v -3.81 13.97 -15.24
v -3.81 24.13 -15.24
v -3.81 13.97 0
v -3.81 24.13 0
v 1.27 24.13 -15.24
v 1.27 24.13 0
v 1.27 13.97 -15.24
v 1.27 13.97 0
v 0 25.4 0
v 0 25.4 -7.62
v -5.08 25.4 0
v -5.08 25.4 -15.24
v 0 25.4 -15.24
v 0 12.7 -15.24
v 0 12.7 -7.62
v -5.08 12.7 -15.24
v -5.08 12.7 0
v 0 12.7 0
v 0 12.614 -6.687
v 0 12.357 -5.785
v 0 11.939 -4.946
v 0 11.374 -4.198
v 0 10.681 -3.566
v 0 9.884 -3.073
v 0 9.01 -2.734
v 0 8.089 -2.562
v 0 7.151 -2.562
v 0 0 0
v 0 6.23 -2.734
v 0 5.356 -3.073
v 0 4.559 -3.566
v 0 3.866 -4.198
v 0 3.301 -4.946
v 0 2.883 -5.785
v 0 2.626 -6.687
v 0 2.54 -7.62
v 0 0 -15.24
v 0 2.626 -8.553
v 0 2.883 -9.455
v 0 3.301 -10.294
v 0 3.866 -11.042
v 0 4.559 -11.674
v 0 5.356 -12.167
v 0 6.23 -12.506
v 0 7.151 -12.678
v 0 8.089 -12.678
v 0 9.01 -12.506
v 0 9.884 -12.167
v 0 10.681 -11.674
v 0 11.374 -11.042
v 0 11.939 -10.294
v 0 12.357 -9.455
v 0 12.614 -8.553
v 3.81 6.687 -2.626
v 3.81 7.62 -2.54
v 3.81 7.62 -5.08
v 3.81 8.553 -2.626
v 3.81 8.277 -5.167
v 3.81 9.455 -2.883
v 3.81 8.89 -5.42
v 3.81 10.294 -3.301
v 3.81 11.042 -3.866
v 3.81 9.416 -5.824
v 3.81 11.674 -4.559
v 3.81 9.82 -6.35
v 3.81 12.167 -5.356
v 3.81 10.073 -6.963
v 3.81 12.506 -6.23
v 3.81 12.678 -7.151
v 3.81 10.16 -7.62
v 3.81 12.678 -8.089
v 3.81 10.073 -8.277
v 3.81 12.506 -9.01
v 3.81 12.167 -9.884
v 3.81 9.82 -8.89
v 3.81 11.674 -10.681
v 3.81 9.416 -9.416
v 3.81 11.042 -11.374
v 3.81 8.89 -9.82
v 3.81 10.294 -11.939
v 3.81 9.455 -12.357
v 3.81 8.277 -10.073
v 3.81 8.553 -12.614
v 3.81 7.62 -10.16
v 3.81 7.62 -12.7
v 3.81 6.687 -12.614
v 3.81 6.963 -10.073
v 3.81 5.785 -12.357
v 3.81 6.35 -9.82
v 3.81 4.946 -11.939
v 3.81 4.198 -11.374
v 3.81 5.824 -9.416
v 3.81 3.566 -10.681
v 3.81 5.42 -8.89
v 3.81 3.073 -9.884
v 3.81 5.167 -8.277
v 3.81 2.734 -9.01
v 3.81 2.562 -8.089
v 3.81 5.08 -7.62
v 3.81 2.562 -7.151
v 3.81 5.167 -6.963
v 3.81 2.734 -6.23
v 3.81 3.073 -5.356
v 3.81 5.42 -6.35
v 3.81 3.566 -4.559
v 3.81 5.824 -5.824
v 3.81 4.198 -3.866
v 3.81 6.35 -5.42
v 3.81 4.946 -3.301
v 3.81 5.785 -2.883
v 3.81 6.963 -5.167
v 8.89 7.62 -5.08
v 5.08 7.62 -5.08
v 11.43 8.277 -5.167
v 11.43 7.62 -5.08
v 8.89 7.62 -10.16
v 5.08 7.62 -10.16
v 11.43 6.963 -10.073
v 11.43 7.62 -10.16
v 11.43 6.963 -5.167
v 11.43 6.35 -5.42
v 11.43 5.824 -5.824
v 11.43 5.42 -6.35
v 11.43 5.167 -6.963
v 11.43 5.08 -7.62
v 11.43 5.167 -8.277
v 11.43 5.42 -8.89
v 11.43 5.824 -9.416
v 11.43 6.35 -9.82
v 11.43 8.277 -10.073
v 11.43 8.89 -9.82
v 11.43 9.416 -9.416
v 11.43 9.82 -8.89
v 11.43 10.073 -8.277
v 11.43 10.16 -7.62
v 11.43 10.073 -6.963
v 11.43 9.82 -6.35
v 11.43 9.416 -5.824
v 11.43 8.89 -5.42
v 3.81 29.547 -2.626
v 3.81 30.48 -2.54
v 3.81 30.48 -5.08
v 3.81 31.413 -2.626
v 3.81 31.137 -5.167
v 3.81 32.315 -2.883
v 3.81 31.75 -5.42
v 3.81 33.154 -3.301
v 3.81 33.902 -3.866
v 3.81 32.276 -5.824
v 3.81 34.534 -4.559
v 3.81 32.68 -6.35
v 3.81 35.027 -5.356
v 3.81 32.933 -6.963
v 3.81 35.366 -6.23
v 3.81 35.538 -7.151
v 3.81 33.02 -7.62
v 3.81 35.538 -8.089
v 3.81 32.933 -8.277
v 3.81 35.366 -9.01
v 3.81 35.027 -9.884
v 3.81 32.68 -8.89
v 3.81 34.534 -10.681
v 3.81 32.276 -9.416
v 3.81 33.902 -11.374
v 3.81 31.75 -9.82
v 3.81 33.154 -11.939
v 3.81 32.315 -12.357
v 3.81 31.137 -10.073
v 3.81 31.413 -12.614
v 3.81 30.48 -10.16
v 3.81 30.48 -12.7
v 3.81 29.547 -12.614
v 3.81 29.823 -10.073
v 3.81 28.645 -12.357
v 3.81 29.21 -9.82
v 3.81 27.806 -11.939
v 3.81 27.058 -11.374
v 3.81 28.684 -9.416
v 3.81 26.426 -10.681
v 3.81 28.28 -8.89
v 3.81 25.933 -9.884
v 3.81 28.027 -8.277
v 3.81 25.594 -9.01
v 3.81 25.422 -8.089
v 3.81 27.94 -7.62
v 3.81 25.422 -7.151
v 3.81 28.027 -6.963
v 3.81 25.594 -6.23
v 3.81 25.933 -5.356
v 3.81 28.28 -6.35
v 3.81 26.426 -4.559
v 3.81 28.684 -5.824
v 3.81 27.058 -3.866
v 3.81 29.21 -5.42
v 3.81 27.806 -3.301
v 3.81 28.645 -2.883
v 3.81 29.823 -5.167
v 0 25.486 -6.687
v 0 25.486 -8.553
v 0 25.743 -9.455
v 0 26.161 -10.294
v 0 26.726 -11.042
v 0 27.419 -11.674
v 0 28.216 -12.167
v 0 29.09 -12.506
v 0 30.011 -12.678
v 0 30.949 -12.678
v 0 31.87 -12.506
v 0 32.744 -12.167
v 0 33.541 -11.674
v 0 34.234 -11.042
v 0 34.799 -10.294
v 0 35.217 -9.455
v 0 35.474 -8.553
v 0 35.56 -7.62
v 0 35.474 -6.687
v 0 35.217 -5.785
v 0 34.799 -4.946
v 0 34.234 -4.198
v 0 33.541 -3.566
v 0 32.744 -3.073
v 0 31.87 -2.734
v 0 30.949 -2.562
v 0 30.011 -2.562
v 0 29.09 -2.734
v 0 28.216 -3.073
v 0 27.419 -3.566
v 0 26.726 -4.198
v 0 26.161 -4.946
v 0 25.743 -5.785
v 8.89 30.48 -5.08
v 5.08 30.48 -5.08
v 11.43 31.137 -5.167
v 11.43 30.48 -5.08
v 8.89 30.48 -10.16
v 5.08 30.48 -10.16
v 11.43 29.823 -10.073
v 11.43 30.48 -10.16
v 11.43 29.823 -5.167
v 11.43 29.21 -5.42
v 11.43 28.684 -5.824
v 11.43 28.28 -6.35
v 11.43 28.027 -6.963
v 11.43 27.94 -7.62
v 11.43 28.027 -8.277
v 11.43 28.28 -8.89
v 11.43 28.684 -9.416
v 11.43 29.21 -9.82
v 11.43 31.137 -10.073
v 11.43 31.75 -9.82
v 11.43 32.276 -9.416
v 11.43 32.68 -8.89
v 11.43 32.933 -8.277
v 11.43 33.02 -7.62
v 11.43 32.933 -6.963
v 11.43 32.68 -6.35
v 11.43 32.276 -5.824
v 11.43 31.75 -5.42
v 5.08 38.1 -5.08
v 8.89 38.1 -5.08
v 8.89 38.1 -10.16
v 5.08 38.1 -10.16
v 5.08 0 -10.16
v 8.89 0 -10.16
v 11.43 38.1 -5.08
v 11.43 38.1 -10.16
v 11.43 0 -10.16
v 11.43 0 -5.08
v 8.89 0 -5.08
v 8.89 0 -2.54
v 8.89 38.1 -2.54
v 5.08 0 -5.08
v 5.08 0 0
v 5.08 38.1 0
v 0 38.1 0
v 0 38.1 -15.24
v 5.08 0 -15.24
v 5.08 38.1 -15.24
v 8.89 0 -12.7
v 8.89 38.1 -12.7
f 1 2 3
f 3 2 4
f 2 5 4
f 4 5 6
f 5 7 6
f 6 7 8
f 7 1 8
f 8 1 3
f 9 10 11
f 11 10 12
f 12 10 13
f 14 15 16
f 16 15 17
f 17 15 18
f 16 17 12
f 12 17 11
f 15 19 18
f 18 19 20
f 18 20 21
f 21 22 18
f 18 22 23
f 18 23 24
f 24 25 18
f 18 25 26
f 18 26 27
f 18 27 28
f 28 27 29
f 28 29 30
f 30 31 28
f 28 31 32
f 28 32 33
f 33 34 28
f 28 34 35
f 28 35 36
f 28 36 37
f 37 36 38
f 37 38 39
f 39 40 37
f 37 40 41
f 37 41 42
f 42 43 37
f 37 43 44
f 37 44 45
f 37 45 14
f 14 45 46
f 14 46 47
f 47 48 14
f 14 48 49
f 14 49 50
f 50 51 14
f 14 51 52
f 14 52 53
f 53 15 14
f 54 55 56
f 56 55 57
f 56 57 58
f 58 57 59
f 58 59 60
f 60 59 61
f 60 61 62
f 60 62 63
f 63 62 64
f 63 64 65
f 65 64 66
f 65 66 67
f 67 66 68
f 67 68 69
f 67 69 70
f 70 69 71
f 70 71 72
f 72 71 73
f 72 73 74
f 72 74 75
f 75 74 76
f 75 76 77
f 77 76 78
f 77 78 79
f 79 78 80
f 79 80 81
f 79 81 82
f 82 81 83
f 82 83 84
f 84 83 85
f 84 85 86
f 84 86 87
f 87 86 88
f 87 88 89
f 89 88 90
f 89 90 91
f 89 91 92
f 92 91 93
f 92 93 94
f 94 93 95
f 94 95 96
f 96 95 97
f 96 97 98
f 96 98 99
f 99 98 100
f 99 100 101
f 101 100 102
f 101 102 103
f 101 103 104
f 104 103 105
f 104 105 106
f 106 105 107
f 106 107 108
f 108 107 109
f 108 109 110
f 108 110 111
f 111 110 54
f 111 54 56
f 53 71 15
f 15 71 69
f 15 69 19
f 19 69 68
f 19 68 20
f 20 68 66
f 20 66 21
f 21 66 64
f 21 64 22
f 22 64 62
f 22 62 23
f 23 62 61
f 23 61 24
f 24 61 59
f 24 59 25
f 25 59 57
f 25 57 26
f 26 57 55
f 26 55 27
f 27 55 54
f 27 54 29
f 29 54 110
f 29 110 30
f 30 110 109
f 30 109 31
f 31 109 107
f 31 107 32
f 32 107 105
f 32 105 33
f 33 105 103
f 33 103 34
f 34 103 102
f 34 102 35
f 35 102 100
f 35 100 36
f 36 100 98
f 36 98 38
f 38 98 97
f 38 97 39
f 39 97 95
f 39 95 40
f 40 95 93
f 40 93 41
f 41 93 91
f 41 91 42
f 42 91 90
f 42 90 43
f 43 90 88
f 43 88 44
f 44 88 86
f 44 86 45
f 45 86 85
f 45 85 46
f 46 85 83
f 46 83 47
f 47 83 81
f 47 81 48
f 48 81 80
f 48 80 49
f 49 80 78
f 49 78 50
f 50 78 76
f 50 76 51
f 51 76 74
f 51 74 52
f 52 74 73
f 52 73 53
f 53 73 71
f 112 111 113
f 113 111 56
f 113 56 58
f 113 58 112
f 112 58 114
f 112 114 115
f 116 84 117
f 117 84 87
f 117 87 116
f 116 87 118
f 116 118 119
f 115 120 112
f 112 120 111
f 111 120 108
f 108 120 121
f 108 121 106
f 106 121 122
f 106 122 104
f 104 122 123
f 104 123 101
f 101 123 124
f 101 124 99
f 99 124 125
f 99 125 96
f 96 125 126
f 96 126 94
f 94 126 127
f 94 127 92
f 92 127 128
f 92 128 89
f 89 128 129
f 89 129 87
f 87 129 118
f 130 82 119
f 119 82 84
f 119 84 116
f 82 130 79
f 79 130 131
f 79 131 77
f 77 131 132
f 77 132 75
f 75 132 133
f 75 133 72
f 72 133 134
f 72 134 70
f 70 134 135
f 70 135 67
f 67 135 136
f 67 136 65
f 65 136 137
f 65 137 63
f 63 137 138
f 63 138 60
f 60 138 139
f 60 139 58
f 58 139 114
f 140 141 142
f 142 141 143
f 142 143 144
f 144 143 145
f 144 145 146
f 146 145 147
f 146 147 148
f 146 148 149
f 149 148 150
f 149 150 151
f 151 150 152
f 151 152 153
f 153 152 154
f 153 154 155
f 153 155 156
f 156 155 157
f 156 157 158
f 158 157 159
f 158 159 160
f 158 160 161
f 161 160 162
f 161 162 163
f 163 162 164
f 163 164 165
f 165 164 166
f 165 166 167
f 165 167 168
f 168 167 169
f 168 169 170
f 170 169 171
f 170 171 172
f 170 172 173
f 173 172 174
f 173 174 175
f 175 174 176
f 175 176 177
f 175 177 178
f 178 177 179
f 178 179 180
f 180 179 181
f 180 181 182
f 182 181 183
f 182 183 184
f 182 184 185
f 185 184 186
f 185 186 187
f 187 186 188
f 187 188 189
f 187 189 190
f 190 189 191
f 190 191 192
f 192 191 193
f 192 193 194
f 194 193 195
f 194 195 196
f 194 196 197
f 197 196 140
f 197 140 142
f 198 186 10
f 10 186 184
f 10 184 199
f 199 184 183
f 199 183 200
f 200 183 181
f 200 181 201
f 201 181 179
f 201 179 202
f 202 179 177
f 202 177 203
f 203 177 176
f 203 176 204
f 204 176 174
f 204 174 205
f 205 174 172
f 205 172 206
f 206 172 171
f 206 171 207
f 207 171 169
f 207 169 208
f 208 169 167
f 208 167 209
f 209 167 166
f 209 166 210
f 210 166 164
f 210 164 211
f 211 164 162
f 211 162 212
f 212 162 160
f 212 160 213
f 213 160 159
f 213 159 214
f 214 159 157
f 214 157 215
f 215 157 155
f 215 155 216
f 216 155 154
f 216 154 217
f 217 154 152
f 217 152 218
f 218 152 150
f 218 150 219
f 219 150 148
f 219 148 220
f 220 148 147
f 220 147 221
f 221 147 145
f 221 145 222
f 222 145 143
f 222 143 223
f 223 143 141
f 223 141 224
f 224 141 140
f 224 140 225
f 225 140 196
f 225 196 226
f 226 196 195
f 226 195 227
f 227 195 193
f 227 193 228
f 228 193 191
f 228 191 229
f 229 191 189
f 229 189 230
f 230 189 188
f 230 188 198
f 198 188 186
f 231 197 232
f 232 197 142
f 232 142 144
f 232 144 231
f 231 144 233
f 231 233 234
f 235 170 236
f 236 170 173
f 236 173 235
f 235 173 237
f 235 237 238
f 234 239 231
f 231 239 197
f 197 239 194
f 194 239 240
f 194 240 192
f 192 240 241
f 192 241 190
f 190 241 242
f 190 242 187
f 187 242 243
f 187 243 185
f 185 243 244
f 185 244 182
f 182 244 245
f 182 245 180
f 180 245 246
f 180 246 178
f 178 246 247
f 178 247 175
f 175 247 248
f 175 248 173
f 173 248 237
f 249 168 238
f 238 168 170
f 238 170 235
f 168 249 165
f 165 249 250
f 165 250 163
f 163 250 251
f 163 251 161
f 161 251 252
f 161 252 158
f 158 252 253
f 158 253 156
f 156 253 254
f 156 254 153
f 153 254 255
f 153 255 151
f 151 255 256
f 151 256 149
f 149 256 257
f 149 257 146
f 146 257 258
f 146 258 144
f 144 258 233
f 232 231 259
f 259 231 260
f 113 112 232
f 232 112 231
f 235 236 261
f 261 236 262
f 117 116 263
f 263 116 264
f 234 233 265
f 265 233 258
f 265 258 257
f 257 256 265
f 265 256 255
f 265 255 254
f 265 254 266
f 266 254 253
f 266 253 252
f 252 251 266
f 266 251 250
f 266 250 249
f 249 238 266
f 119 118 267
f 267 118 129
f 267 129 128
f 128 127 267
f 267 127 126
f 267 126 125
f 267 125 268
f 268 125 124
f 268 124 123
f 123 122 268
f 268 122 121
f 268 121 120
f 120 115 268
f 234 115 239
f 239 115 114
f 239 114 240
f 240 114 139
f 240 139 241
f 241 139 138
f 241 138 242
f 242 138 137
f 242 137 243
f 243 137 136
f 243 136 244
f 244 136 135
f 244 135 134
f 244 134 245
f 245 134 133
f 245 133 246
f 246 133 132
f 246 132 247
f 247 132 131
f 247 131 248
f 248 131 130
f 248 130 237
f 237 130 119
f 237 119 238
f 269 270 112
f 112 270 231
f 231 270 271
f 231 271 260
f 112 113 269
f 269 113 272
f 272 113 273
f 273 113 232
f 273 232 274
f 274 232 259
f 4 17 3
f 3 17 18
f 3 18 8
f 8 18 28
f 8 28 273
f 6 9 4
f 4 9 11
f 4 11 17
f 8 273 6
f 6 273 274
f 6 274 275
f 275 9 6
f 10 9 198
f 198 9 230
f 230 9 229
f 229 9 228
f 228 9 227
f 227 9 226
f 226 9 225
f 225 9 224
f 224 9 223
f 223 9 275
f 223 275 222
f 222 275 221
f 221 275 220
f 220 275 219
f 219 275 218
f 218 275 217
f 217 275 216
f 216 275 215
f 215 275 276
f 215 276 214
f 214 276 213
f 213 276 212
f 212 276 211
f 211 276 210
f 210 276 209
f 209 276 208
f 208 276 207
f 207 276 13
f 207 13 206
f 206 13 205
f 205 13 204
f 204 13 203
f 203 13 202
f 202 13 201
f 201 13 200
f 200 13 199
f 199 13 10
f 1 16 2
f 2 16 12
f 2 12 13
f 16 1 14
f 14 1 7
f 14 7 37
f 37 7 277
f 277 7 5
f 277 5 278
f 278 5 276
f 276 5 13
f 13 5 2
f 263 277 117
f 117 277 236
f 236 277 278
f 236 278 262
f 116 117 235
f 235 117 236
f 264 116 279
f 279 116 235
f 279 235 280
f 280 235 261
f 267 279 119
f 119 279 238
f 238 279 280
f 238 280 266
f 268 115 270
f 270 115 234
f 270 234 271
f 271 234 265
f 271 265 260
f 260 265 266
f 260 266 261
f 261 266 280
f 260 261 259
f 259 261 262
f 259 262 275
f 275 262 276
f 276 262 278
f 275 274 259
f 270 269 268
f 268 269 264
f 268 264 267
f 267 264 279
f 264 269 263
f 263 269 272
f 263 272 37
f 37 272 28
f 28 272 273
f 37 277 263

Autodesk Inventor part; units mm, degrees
ref_plane "YZ Plane" through (0, 0, 0) normal (1, 0, 0) x (0, 1, 0)
ref_plane "XZ Plane" through (0, 0, 0) normal (0, 1, 0) x (-1, 0, 0)
ref_plane "XY Plane" through (0, 0, 0) normal (0, 0, 1) x (1, 0, 0)
sketch "Sketch1" plane through (0, 0, 0) normal (0, 1, 0) x (-1, 0, 0)
  line L0 (0, 0) -> (-5.08, 0)
  line L1 (-5.08, 0) -> (-5.08, -15.24)
  line L2 (-5.08, -15.24) -> (0, -15.24)
  line L3 (0, -15.24) -> (0, 0)
  line L4 (-5.08, -7.62) -> (-5.08, -5.08)
  line L5 (-5.08, -5.08) -> (-8.89, -5.08)
  line L6 (-8.89, -5.08) -> (-8.89, -2.54)
  line L7 (-8.89, -5.08) -> (-11.43, -5.08)
  line L8 (-11.43, -5.08) -> (-11.43, -10.16)
  line L9 (-11.43, -10.16) -> (-5.08, -10.16)
  line L10 (-8.89, -10.16) -> (-8.89, -12.7)
  line L11 (-8.89, -12.7) -> (-11.43, -10.16)
  line L12 (-8.89, -2.54) -> (-11.43, -5.08)
  dimension "d0" = 5.08
  dimension "d1" = 15.24
  dimension "d2" = 2.54
  dimension "d3" = 3.81
  dimension "d4" = 2.54
  dimension "d5" = 2.54
  dimension "d6" = 5.08
  dimension "d7" = 2.54
extrude "Extrusion1" add sketch "Sketch1" along normal blind 38.1
sketch "Sketch2" plane through (0, 0, -15.24) normal (-1, 0, 0) x (0, 0, 1)
  line L0 (10.16, 0) -> (5.08, 0) projected
  line L1 (7.62, 0) -> (7.62, 7.62)
  line L2 (10.16, 38.1) -> (5.08, 38.1) projected
  line L3 (7.62, 38.1) -> (7.62, 30.48)
  point P0 (15.24, 0)
  dimension "d10" = 7.62
  dimension "d11" = 7.62
hole "Hole1" at (0, 7.62, -7.62) at (0, 30.48, -7.62) direction (1, 0, 0) diameter 5.08 end through all counterbore diameter 10.16 counterbore depth 3.81
sketch "Sketch3" plane through (0, 0, -15.24) normal (-1, 0, 0) x (0, 0, 1)
  circle A0 centre (7.62, 7.62) radius 5.08 projected
  circle A1 centre (7.62, 30.48) radius 5.08 projected
  line L0 (0, 0) -> (0, 38.1) projected
  line L1 (15.24, 0) -> (15.24, 38.1) projected
  line L2 (0, 12.7) -> (15.24, 12.7)
  line L3 (15.24, 12.7) -> (15.24, 25.4)
  line L4 (15.24, 25.4) -> (0, 25.4)
  line L5 (0, 25.4) -> (0, 12.7)
  dimension "d19" = 12.7
  dimension "d20" = 12.7
extrude "Extrusion2" add sketch "Sketch3" along normal blind 5.08 contours L2 L0 L4 L1
sketch "Sketch4" plane through (5.08, 0, -15.24) normal (0, 0, -1) x (-1, 0, 0)
  line L0 (10.16, 12.7) -> (10.16, 25.4) projected
  line L1 (10.16, 12.7) -> (8.89, 12.7)
  line L2 (8.89, 12.7) -> (8.89, 13.97)
  line L3 (8.89, 13.97) -> (10.16, 13.97)
  line L4 (10.16, 13.97) -> (10.16, 12.7)
  line L5 (8.89, 13.97) -> (3.81, 13.97)
  line L6 (3.81, 13.97) -> (3.81, 24.13)
  line L7 (3.81, 24.13) -> (8.89, 24.13)
  line L8 (8.89, 24.13) -> (8.89, 13.97)
  point P0 (5.08, 0)
  dimension "d23" = 1.27
  dimension "d24" = 1.27
  dimension "d25" = 5.08
  dimension "d26" = 10.16
extrude "Extrusion3" cut sketch "Sketch4" against normal blind 15.24 contours L5 L6 L7 L8
properties part number "Mount Female"
